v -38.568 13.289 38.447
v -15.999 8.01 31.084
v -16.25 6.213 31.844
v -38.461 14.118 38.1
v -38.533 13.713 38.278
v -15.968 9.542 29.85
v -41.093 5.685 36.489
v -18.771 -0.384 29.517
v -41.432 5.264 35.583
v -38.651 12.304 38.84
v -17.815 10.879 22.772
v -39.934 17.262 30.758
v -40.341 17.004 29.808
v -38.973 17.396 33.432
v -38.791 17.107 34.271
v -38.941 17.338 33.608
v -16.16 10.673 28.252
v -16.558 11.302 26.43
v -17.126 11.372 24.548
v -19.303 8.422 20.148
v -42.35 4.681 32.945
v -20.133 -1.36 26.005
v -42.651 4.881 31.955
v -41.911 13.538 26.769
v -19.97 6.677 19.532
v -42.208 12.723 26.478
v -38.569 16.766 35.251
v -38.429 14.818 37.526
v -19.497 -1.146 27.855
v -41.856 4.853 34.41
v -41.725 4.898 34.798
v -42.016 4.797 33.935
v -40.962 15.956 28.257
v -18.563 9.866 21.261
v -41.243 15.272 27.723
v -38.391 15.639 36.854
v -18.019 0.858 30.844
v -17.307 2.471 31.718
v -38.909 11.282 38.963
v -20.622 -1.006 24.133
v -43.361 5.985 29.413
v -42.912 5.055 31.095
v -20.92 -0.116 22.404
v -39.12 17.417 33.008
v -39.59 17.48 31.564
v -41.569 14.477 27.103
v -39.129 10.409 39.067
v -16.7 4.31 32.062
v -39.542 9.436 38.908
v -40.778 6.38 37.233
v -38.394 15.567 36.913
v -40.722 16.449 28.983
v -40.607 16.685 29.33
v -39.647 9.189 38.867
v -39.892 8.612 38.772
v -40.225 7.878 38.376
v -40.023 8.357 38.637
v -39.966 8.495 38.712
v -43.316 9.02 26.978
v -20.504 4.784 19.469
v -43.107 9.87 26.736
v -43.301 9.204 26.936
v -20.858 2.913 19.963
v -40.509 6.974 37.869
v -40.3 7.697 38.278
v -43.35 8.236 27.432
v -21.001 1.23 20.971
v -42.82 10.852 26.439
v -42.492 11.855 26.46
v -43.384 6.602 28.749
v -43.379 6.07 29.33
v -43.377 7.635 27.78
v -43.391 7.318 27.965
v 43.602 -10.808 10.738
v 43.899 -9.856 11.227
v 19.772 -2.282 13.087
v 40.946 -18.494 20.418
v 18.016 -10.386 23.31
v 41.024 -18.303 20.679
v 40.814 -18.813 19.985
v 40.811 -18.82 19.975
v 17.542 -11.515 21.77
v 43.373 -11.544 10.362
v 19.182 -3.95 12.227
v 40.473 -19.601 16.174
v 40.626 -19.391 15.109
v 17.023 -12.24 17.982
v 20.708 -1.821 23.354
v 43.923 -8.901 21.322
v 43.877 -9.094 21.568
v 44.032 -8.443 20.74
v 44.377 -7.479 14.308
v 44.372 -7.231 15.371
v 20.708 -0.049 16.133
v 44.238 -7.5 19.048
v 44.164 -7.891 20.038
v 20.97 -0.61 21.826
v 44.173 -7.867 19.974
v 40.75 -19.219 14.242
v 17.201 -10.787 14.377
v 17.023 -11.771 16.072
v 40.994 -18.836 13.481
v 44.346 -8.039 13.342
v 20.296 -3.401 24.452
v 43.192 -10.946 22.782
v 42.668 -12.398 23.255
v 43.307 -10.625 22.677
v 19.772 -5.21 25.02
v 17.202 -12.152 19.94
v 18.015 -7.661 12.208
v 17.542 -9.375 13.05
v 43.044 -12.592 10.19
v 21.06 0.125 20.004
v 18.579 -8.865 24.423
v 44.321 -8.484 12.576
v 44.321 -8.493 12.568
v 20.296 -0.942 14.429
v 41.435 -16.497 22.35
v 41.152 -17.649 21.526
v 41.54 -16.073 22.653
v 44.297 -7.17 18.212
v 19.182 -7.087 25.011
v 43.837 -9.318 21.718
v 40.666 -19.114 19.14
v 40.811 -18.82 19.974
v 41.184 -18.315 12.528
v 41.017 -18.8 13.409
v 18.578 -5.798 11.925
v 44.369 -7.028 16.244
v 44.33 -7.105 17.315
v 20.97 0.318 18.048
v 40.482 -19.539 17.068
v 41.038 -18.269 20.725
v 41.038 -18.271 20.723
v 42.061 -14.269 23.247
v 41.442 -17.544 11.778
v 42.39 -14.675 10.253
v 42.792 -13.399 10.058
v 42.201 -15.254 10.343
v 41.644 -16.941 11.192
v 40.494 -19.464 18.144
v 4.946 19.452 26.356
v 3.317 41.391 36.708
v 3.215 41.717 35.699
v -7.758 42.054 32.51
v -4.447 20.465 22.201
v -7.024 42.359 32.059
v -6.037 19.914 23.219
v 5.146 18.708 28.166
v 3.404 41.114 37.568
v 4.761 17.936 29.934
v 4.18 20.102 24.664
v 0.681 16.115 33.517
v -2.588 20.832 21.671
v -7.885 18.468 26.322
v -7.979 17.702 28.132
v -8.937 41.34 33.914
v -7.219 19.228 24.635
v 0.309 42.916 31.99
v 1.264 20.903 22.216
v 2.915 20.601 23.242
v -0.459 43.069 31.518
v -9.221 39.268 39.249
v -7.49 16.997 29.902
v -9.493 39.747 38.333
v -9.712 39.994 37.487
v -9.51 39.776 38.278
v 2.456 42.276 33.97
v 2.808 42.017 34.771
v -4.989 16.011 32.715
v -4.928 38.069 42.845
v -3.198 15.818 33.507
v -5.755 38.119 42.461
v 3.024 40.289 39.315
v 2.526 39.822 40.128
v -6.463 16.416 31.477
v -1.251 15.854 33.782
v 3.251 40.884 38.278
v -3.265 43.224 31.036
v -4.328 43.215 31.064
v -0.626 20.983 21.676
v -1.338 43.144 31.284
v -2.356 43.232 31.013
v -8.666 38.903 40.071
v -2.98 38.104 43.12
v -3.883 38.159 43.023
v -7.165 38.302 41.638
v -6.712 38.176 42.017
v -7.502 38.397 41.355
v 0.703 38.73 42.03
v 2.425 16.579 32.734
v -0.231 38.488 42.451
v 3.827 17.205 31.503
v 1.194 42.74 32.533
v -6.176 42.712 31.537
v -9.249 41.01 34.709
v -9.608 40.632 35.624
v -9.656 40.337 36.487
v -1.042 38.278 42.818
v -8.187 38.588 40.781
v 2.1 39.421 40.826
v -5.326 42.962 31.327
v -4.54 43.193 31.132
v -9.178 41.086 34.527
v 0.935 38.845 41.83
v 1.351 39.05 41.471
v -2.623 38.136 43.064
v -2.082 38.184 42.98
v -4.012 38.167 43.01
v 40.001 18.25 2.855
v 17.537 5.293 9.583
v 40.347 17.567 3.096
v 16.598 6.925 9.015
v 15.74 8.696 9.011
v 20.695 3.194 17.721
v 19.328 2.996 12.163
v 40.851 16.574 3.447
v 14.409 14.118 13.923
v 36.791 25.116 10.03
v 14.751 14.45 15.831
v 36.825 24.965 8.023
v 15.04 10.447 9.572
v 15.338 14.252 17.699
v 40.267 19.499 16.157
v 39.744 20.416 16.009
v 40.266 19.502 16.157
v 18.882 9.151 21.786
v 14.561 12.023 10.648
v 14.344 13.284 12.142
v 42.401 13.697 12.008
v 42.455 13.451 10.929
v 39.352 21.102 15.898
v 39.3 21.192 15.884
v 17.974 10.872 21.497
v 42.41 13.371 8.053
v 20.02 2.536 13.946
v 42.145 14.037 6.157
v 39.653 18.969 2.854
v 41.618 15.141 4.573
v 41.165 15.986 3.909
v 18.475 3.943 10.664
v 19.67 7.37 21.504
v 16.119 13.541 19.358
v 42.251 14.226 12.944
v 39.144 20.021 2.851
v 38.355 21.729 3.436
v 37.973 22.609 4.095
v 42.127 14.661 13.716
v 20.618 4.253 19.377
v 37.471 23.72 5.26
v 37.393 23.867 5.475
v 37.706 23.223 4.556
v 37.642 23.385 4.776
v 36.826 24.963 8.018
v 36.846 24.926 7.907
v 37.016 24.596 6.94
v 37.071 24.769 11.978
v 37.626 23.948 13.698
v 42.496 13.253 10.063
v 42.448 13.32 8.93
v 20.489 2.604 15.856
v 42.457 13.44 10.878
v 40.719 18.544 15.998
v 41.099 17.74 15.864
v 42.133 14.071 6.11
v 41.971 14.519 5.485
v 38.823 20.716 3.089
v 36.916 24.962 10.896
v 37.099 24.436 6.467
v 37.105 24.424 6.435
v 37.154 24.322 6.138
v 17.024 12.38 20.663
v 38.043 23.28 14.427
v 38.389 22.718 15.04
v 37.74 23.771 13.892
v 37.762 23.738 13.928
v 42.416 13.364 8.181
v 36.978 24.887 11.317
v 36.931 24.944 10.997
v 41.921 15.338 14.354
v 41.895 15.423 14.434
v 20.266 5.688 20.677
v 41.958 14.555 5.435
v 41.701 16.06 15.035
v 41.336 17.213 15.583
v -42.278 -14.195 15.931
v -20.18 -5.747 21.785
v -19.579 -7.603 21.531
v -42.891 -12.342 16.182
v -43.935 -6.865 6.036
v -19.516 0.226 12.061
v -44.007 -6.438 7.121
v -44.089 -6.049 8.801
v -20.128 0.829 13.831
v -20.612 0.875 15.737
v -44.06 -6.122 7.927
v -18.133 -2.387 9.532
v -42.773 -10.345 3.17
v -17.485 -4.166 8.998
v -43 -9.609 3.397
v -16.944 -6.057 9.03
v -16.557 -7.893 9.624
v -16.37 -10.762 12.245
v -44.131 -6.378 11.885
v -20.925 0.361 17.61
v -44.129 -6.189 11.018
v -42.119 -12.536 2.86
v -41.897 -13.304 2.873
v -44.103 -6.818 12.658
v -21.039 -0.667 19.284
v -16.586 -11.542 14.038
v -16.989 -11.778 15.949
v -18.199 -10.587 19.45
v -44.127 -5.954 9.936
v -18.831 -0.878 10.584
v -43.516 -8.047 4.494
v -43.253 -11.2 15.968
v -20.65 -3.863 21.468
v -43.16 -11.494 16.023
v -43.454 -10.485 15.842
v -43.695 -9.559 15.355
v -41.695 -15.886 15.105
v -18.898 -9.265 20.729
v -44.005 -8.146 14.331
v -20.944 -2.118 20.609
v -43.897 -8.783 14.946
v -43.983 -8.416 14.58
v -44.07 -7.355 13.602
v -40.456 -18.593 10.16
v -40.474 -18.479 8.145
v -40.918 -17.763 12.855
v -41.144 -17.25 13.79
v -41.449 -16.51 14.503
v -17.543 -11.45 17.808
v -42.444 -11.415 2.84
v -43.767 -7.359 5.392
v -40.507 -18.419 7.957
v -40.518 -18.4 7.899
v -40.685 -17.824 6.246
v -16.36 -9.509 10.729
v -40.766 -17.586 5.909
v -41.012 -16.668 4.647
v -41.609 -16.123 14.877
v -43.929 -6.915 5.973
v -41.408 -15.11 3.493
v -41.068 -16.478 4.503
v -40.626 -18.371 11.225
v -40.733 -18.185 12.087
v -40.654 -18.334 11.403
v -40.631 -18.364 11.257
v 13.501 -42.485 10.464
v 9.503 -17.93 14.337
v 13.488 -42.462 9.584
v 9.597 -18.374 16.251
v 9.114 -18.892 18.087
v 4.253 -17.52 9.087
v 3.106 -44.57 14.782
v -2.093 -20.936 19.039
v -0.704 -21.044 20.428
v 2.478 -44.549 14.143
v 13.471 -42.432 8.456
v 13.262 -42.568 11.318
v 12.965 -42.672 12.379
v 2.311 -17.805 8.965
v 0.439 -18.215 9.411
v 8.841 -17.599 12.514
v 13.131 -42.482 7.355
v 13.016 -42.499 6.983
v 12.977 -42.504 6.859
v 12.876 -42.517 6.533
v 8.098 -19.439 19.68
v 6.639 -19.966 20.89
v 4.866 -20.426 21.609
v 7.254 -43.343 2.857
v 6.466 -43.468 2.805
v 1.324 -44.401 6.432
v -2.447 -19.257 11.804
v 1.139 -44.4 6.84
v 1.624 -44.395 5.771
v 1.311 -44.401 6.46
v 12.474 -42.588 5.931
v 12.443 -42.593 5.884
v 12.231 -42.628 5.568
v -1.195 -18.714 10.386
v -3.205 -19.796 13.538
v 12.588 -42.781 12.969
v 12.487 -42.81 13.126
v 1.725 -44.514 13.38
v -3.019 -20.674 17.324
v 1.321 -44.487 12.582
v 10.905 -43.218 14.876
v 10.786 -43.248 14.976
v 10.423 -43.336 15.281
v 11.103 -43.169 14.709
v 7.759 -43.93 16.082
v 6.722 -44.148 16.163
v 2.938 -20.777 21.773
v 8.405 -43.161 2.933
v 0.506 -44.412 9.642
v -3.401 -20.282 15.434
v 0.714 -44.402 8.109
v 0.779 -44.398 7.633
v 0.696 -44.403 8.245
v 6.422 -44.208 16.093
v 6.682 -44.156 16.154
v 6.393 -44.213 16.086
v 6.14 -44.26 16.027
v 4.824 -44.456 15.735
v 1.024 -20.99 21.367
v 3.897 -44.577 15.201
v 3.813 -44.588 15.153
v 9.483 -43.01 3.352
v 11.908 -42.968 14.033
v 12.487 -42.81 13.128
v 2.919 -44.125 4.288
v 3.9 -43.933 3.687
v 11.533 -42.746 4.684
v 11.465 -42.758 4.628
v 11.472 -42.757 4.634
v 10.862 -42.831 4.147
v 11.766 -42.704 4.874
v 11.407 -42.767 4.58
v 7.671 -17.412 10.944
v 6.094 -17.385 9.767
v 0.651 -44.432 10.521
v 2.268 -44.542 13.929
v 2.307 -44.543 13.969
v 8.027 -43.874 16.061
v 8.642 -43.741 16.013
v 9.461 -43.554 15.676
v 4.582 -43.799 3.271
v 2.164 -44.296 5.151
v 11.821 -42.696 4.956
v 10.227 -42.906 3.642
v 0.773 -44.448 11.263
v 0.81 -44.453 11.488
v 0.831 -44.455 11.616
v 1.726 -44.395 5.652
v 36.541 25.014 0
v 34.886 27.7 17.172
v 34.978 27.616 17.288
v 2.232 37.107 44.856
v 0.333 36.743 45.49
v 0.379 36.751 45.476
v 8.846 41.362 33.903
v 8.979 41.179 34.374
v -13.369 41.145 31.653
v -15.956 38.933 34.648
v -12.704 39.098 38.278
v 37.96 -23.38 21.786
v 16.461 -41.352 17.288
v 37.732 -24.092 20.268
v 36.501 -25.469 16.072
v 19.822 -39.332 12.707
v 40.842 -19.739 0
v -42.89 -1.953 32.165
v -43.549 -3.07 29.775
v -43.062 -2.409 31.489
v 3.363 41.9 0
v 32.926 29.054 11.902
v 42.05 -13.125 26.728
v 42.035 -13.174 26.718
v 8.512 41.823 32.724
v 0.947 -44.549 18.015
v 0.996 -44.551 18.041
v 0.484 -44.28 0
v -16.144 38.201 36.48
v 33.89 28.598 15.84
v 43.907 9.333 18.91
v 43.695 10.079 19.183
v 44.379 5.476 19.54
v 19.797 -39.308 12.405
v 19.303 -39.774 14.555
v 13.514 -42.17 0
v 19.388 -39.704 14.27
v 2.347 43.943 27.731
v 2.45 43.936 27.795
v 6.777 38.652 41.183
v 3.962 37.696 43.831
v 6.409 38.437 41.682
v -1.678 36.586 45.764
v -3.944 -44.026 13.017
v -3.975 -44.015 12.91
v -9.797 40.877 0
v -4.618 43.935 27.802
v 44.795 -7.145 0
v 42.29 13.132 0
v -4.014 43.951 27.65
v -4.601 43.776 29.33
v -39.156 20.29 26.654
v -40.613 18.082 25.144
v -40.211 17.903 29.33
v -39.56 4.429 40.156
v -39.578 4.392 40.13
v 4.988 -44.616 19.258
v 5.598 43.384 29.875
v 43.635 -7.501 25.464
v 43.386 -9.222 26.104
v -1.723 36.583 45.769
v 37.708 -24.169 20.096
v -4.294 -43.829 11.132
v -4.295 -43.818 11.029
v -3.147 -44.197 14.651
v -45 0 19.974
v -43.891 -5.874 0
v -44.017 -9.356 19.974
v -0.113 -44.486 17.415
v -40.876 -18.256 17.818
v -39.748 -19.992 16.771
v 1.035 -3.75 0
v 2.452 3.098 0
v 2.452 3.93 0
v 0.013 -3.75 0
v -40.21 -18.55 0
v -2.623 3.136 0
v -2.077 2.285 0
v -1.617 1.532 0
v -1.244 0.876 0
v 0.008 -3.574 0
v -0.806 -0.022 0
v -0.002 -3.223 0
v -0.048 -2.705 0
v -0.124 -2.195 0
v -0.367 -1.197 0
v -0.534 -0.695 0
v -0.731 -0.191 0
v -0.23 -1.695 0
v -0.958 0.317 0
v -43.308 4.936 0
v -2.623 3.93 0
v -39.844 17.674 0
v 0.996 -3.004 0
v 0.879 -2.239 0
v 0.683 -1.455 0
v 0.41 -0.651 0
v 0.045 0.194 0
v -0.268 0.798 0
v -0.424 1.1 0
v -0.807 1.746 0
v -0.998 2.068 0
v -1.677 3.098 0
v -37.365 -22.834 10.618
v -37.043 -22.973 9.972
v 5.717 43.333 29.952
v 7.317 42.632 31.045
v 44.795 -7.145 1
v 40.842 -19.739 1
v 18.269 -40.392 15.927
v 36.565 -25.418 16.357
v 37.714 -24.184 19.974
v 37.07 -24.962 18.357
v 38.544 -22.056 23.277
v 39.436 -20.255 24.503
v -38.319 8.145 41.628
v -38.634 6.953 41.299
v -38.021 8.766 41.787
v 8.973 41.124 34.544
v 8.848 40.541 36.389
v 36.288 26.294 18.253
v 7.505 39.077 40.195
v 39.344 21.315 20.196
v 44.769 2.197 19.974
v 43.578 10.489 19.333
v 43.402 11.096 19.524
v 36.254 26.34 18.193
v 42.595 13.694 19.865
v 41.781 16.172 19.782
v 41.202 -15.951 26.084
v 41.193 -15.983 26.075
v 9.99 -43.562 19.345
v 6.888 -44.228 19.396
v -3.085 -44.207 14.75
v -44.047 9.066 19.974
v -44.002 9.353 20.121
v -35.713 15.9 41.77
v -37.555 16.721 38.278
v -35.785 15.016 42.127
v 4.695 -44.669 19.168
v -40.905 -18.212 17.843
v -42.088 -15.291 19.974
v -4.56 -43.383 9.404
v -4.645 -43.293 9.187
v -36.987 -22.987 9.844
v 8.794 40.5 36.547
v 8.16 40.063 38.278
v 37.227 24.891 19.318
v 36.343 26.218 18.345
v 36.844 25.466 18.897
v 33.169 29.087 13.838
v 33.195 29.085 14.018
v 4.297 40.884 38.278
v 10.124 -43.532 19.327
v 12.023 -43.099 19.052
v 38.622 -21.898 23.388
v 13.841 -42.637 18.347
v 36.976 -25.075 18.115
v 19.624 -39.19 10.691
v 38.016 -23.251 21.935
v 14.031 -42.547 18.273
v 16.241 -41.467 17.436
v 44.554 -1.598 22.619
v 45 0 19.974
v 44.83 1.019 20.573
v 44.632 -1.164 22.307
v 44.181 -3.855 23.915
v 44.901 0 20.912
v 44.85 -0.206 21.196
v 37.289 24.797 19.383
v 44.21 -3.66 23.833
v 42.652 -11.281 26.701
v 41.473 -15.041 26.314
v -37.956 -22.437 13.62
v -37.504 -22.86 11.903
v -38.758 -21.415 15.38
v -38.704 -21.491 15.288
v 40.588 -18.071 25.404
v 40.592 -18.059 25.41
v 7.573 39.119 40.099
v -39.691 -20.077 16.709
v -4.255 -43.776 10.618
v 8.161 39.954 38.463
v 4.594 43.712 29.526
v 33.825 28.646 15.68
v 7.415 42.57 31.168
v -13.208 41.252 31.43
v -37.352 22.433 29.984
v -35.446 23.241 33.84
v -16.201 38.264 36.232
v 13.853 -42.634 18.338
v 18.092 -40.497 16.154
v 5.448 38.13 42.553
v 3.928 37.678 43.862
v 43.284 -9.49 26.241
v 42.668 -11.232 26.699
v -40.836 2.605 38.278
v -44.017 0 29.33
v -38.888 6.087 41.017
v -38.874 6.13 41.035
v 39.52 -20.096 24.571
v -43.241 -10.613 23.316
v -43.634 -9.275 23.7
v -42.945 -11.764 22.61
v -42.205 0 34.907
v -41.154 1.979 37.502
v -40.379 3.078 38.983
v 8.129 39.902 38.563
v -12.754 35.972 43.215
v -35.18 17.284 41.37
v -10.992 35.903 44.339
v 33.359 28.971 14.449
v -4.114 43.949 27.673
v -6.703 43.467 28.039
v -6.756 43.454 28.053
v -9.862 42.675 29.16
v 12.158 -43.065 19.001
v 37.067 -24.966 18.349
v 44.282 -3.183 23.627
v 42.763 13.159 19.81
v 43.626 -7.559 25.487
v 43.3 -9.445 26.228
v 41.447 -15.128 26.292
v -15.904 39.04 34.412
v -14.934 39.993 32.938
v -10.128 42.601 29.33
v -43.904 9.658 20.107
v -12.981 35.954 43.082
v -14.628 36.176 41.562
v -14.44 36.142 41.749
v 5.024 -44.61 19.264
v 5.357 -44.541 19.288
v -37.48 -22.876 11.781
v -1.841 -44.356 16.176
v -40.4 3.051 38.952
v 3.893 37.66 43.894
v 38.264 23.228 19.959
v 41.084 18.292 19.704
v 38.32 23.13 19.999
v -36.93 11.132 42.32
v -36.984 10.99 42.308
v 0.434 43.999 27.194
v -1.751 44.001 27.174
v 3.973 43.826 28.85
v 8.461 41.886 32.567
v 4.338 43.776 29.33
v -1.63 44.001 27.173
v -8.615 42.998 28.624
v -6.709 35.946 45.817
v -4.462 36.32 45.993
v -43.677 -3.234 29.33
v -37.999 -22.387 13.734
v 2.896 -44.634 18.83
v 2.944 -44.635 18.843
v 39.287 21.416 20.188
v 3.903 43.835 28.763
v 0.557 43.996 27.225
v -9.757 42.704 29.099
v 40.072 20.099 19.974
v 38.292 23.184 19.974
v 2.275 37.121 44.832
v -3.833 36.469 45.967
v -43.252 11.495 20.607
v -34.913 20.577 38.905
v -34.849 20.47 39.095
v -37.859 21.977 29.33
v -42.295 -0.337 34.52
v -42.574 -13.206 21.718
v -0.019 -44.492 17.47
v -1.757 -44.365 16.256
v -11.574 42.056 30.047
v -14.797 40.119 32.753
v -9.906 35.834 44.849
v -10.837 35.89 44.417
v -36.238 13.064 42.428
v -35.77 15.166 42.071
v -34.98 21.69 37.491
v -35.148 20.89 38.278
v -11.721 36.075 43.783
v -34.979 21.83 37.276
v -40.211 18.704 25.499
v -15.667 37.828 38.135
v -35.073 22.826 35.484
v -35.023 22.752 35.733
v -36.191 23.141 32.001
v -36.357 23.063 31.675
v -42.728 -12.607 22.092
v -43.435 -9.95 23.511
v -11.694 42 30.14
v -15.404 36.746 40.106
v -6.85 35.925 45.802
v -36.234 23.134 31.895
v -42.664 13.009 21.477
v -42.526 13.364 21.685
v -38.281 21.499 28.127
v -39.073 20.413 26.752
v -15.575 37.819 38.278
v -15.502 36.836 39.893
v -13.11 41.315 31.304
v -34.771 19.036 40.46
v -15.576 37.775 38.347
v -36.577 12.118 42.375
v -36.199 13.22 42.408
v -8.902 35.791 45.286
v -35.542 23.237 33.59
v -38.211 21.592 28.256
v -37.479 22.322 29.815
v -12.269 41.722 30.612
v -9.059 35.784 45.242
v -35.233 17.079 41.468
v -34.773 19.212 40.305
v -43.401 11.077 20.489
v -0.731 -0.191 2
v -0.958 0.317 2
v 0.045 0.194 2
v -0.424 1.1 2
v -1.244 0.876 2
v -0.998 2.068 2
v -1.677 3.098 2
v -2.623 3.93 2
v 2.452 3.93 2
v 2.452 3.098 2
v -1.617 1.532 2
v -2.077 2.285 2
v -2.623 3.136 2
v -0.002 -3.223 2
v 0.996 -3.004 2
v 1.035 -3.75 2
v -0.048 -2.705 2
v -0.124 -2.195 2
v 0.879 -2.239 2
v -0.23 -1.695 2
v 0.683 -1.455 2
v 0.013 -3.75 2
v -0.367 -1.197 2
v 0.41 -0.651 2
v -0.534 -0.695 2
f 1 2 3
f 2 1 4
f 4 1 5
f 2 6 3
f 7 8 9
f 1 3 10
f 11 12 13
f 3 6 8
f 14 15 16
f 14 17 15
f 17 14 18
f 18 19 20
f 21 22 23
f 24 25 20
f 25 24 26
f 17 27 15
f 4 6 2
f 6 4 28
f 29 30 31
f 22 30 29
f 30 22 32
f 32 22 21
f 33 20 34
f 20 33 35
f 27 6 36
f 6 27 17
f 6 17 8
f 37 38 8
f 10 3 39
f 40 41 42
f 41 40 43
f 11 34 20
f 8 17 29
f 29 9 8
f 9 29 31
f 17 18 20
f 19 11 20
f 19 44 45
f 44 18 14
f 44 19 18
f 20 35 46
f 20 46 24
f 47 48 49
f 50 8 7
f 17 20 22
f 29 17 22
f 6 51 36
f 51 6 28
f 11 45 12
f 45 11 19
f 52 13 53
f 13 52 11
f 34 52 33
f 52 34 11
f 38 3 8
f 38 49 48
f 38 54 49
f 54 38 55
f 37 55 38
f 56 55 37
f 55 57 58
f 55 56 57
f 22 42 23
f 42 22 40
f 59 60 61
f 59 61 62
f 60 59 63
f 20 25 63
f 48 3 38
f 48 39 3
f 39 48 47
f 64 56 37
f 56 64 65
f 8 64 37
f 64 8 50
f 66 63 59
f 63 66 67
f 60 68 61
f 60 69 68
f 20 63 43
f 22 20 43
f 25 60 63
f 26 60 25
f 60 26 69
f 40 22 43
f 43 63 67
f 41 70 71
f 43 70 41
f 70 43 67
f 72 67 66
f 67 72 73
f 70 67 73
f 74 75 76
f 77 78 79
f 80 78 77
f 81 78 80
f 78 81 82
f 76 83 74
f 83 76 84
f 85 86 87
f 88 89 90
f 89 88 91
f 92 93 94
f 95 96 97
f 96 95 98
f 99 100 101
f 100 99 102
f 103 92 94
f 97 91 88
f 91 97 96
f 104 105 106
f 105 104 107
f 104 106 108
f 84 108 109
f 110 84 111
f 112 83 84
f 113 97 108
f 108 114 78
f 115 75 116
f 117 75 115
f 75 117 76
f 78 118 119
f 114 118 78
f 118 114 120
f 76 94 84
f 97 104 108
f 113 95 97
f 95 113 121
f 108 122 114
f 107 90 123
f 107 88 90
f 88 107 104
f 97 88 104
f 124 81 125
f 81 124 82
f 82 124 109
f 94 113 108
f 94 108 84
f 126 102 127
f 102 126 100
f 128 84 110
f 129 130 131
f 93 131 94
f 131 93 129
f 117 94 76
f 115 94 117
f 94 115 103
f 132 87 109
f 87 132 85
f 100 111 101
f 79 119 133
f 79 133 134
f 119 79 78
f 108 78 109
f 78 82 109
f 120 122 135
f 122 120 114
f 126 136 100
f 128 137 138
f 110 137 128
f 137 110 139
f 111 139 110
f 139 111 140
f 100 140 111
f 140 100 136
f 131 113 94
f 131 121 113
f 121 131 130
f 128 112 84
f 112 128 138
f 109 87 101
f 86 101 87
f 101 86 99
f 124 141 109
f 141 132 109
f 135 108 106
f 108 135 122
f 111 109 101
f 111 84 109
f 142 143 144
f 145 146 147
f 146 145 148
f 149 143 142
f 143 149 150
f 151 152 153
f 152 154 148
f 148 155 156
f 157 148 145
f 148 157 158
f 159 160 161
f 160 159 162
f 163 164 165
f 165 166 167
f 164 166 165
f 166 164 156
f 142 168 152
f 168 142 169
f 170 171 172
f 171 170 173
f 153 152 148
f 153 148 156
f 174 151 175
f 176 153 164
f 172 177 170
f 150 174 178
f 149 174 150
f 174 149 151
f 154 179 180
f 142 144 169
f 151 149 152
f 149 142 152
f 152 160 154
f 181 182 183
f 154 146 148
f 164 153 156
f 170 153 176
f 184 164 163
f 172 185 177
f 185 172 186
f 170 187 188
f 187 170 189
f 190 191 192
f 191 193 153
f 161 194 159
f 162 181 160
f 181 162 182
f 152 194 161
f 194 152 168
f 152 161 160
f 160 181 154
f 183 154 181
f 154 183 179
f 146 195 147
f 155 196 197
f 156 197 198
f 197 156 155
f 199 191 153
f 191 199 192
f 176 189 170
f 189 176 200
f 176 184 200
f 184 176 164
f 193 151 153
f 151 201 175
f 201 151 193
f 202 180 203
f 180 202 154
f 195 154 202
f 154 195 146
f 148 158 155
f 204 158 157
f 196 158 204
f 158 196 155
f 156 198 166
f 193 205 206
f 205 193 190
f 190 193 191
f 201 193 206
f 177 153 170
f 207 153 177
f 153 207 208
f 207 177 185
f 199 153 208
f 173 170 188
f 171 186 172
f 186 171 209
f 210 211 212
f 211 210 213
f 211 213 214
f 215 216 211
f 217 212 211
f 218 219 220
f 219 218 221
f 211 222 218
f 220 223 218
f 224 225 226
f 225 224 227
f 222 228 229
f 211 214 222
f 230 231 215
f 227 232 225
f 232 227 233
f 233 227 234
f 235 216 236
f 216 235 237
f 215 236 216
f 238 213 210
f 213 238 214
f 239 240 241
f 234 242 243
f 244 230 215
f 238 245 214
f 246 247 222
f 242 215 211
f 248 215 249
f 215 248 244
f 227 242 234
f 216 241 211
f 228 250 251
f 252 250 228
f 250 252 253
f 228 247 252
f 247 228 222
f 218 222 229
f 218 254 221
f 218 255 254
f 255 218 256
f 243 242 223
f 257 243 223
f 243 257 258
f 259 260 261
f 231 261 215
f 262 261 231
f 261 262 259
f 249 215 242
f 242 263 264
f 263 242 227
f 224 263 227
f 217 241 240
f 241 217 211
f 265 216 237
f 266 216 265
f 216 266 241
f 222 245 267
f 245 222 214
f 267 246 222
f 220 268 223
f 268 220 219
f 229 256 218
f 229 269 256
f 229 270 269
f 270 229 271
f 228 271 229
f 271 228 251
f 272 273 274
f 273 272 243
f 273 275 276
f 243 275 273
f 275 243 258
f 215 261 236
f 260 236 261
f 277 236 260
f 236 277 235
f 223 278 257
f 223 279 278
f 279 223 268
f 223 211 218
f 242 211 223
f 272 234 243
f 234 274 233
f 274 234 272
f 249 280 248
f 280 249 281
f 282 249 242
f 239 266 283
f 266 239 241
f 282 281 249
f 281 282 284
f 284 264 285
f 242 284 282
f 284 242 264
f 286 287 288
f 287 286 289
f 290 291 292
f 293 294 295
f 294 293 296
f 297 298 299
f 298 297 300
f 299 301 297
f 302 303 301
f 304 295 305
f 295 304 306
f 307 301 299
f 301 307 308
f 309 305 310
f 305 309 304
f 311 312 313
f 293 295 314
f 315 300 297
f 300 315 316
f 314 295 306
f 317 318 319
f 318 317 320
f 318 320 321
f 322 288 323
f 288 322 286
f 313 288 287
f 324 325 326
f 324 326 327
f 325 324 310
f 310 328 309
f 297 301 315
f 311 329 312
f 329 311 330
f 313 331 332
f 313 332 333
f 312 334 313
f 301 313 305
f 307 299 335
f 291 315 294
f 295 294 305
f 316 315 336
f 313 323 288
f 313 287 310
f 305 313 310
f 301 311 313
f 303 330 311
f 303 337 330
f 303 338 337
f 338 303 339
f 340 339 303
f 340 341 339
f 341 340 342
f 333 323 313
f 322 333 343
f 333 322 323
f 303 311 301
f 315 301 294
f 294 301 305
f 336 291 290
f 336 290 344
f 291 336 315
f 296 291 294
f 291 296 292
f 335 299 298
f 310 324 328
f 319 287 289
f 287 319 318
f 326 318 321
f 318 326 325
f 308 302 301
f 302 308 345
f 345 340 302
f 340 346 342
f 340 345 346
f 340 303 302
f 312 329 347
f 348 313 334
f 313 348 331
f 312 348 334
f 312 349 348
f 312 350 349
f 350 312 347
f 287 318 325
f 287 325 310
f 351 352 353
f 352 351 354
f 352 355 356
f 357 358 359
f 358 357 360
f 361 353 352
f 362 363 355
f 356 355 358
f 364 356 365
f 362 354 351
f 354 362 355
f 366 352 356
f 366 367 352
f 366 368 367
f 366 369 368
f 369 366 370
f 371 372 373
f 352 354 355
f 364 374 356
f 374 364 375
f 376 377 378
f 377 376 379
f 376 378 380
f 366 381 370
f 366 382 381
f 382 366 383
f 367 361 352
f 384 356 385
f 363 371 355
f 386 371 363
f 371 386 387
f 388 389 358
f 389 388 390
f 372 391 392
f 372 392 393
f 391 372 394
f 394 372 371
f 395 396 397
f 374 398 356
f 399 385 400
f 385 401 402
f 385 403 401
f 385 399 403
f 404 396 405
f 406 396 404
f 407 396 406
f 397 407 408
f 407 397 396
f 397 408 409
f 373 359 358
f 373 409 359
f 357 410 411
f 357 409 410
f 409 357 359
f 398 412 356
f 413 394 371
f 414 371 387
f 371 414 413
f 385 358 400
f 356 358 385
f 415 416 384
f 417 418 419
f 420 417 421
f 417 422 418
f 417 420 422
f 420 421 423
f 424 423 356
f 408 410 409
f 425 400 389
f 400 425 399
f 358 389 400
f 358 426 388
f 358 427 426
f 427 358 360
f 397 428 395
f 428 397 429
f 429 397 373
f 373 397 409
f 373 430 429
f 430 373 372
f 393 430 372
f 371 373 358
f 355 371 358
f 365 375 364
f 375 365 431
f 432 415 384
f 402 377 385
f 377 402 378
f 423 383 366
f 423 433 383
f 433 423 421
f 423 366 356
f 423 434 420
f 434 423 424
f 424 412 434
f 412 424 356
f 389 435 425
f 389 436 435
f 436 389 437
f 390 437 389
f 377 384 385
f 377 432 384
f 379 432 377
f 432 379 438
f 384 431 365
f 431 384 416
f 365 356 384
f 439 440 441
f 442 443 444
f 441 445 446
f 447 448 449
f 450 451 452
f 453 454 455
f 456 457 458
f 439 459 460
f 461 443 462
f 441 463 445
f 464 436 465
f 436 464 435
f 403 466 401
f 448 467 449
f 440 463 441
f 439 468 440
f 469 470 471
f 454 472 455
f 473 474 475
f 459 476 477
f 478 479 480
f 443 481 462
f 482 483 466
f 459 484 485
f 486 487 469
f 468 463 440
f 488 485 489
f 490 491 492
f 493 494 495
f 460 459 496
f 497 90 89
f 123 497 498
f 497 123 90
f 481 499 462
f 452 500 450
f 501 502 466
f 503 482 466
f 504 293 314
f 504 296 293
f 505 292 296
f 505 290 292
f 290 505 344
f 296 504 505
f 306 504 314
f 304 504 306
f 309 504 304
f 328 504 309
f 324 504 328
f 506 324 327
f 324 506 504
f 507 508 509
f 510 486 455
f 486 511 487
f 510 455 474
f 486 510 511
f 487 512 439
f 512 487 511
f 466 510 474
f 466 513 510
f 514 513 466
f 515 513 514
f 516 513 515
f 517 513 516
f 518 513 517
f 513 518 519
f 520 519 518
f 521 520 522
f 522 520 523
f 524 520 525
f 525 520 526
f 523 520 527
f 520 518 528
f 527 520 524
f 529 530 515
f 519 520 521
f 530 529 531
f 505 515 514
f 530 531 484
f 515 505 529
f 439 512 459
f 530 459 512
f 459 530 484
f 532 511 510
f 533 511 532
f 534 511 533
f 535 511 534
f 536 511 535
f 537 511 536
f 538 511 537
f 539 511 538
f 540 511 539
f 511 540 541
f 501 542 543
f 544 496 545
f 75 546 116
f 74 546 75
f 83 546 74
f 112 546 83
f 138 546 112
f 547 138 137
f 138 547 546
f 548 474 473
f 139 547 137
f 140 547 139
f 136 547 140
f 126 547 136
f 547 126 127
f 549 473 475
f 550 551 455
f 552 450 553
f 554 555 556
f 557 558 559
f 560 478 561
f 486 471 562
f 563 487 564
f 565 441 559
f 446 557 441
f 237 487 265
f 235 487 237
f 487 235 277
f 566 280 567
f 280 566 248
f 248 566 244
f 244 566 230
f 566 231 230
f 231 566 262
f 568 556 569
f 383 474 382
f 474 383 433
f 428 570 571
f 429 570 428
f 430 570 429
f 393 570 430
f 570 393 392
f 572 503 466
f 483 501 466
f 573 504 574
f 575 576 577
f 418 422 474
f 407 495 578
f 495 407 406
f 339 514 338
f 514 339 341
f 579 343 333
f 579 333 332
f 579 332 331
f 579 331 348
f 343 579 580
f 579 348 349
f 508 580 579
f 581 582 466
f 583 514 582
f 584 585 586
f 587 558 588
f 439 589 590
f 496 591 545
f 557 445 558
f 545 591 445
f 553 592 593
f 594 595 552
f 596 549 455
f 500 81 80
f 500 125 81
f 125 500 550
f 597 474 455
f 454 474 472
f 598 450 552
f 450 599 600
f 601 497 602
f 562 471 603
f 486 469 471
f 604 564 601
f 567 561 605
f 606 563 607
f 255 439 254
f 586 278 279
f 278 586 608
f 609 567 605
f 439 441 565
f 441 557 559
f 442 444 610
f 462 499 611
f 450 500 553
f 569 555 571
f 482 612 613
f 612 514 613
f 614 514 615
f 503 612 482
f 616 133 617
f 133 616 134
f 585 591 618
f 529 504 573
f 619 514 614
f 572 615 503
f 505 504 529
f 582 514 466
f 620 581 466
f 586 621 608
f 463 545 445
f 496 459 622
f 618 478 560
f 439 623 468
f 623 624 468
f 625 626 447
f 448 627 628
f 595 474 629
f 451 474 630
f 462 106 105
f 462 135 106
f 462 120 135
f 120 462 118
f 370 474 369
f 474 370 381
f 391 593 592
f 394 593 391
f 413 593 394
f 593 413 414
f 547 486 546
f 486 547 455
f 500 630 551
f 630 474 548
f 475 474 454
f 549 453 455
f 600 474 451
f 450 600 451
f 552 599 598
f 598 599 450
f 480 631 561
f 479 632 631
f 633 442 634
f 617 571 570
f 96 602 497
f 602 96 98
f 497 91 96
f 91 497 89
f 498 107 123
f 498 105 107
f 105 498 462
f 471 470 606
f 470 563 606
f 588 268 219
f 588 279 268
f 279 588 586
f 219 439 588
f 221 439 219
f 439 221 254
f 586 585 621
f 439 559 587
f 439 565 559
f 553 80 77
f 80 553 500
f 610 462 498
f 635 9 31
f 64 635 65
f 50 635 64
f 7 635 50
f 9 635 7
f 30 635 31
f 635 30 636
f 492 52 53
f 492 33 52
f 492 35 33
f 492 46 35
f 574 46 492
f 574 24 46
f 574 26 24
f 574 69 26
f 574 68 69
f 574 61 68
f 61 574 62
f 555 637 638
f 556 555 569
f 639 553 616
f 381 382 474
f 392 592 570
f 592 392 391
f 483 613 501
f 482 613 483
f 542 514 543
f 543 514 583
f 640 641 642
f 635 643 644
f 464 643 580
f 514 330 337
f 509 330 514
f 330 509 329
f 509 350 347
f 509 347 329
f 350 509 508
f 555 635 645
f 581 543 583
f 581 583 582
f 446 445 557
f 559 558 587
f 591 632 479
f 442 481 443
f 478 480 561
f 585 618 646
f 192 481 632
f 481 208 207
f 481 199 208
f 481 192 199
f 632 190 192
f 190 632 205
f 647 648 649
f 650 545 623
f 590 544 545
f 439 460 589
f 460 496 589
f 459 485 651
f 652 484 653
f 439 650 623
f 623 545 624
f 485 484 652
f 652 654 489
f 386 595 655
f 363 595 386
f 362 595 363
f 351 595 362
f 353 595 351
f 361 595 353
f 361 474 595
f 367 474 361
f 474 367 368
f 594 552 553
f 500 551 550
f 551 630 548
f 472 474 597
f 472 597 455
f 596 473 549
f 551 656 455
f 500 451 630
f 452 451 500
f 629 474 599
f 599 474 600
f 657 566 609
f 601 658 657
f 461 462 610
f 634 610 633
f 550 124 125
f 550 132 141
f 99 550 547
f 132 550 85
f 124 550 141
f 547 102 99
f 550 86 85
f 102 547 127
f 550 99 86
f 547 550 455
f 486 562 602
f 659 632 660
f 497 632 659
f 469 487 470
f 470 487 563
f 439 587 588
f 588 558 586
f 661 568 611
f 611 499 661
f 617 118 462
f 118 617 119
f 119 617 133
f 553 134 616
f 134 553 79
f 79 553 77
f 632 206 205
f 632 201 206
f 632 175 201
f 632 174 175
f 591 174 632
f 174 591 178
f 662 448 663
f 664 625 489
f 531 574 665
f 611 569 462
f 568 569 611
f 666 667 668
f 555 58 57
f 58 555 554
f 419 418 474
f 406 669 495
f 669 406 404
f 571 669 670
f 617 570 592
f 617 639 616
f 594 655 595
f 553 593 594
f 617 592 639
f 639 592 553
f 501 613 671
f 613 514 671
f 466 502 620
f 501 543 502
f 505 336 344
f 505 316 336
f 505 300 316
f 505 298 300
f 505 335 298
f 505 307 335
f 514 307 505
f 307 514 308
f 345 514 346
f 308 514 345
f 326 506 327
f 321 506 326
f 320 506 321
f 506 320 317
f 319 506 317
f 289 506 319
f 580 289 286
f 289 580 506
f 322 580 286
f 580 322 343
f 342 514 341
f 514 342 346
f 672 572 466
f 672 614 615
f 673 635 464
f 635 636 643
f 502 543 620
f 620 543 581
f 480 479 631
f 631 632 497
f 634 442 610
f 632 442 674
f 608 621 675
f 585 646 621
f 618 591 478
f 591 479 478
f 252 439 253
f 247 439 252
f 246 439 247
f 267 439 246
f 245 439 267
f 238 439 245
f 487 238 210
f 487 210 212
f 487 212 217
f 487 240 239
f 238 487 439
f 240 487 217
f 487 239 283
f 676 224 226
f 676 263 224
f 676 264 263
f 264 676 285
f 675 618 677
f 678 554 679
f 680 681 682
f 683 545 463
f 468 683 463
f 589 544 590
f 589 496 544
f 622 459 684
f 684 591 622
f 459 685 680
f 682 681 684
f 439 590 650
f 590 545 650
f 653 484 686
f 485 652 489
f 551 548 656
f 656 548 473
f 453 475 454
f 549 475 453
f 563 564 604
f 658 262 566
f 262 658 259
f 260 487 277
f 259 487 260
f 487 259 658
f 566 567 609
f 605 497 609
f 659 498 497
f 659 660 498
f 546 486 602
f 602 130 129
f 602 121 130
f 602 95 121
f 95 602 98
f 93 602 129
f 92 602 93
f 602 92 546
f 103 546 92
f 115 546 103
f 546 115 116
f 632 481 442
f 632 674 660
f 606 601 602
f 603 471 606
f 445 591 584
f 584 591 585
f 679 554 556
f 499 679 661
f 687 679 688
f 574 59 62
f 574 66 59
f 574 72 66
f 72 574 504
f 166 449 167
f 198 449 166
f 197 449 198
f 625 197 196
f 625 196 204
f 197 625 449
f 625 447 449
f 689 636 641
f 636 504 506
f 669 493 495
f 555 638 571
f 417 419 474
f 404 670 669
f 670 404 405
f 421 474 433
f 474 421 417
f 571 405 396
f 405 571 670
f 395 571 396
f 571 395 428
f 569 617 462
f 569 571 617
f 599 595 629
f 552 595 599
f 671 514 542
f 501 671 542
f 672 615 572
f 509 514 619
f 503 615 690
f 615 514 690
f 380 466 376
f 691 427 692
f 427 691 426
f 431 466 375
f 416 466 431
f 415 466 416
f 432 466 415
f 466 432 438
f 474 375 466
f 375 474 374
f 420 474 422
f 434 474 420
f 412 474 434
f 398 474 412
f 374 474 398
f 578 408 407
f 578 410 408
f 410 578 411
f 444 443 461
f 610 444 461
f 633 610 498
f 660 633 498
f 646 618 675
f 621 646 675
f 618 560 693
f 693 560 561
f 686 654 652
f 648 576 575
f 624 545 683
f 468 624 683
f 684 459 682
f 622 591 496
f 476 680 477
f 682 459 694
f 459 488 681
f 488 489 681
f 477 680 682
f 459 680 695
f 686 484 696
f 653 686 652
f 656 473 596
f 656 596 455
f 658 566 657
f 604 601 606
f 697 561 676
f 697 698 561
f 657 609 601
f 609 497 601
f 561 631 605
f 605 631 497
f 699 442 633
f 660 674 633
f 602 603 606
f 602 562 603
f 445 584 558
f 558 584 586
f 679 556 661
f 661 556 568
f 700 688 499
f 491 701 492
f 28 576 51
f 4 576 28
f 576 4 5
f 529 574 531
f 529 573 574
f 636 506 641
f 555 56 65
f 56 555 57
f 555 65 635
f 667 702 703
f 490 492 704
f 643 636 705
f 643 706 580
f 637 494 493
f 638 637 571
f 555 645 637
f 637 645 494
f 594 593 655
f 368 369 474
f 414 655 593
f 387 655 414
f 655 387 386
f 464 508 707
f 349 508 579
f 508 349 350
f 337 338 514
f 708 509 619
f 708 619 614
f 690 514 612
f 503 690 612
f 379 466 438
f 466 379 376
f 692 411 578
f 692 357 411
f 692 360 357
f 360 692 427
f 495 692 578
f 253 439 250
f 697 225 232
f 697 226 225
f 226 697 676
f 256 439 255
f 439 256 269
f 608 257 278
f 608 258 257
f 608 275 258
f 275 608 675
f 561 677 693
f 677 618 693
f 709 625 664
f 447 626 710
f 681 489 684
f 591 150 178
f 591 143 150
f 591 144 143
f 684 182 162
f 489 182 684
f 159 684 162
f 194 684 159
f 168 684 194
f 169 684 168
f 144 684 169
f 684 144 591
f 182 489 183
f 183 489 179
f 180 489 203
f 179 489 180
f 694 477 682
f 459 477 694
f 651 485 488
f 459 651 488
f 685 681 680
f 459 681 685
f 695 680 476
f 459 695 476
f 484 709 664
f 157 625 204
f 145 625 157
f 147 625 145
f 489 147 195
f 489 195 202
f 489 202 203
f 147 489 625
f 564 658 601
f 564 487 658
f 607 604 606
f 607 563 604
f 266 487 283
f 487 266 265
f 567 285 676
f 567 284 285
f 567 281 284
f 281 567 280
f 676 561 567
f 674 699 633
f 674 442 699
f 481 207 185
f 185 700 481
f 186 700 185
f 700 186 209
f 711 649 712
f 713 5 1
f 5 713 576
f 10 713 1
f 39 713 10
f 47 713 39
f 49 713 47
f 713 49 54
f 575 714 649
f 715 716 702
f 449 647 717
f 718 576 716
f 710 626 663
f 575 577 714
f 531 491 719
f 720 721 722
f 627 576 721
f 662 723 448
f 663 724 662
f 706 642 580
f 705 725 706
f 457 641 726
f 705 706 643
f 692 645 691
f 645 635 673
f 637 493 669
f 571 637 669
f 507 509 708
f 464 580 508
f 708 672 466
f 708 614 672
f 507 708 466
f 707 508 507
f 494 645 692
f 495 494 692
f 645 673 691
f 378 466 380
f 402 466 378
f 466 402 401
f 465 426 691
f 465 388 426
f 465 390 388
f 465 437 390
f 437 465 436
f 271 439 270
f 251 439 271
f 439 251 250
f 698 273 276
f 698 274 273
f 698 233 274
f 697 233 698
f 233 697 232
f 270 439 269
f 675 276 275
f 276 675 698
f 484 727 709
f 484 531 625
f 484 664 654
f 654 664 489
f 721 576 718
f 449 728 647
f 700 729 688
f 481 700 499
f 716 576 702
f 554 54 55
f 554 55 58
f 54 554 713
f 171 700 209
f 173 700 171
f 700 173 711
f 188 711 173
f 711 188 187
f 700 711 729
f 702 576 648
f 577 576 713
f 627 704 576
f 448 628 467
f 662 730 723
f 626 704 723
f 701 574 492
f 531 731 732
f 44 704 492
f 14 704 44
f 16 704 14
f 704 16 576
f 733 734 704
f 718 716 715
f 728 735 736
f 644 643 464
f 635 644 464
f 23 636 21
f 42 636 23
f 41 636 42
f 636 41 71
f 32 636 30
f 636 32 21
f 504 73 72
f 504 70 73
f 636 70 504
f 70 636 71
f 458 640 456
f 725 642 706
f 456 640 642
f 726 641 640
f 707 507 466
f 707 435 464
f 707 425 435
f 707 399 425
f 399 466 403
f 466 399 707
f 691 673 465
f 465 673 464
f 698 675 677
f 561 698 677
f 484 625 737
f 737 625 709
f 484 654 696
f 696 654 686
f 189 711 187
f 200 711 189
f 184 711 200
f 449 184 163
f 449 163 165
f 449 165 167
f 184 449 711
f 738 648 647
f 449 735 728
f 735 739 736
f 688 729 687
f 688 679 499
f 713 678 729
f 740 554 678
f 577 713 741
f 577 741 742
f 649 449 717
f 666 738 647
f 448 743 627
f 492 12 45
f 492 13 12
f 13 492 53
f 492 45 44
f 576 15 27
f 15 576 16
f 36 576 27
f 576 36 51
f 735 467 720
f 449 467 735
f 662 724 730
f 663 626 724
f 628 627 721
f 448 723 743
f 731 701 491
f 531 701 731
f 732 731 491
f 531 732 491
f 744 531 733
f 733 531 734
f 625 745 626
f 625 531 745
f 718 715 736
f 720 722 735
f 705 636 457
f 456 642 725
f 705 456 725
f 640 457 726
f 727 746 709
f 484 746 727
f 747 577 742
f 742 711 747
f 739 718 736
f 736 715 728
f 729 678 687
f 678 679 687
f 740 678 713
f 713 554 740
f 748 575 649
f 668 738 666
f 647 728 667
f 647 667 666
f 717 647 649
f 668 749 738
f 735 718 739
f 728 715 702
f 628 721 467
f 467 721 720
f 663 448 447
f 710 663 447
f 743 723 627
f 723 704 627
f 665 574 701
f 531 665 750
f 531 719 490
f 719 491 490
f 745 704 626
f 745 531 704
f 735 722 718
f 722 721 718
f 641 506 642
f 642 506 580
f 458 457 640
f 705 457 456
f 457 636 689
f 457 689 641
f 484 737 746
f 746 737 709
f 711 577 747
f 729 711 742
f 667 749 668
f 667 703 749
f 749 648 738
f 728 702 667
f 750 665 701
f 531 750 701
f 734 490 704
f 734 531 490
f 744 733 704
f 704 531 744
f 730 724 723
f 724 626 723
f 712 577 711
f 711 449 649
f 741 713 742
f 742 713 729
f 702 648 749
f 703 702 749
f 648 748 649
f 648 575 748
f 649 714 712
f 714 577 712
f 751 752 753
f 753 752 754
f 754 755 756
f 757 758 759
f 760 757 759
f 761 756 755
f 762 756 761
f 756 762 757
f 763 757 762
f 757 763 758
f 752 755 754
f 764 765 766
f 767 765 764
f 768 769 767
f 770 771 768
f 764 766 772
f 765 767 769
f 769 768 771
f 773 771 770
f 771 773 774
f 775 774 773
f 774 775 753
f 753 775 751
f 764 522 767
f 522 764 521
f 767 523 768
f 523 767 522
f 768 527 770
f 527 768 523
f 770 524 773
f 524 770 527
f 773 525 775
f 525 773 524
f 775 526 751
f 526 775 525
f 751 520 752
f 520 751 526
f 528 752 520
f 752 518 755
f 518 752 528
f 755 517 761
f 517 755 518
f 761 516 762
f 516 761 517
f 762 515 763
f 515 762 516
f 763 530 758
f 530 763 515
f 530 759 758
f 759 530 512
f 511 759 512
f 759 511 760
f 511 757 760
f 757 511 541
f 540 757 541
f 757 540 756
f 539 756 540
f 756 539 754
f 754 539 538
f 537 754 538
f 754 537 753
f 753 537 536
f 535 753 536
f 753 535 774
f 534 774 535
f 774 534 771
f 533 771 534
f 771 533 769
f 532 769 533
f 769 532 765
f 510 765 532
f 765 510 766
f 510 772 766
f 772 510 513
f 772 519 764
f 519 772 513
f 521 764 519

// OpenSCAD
difference() {
	difference() {
		difference() {
			hull() {
				union() {
					union() {
						rotate(a = 164.7886357031, v = [0, 0, 1]) {
							translate(v = [0, -6.6000000000, 0]) {
								cube(size = [43.0855412573, 13.2000000000, 1]);
							}
						}
						rotate(a = -17.4284239141, v = [0, 0, 1]) {
							translate(v = [0, -6.6000000000, 0]) {
								cube(size = [44.8787166652, 13.2000000000, 1]);
							}
						}
						rotate(a = 94.4448581405, v = [0, 0, 1]) {
							translate(v = [0, -6.6000000000, 0]) {
								cube(size = [41.5129379243, 13.2000000000, 1]);
							}
						}
						rotate(a = 25.8222615810, v = [0, 0, 1]) {
							translate(v = [0, -6.6000000000, 0]) {
								cube(size = [43.7878239288, 13.2000000000, 1]);
							}
						}
						rotate(a = -163.8058894154, v = [0, 0, 1]) {
							translate(v = [0, -6.6000000000, 0]) {
								cube(size = [43.7878212574, 13.2000000000, 1]);
							}
						}
						rotate(a = -80.8022124970, v = [0, 0, 1]) {
							translate(v = [0, -6.6000000000, 0]) {
								cube(size = [43.7878216848, 13.2000000000, 1]);
							}
						}
					}
					translate(v = [0, 0, 19.9743293532]) {
						intersection() {
							hull() {
								rotate(a = 73.2272146022, v = [-0.2512176951, -0.9239117677, 0.0000011751]) {
									cylinder(h = 45, r = 9.6000000000);
								}
								rotate(a = 94.2075148484, v = [0.2987068259, 0.9515204788, -0.0000012502]) {
									cylinder(h = 45, r = 9.6000000000);
								}
								rotate(a = 67.2957373806, v = [-0.9197347885, -0.0714945390, 0.0000009912]) {
									cylinder(h = 45, r = 9.6000000000);
								}
								rotate(a = 103.3288130025, v = [-0.4238477558, 0.8759022790, -0.0000004521]) {
									cylinder(h = 45, r = 9.6000000000);
								}
								rotate(a = 103.3289752894, v = [0.2713795561, -0.9344536308, 0.0000006631]) {
									cylinder(h = 45, r = 9.6000000000);
								}
								rotate(a = 103.3289493282, v = [0.9605512597, 0.1555375594, -0.0000011161]) {
									cylinder(h = 45, r = 9.6000000000);
								}
							}
							sphere(r = 45);
						}
					}
				}
			}
			translate(v = [0, 0, 19.9743293532]) {
				rotate(a = 73.2272146022, v = [-0.2512176951, -0.9239117677, 0.0000011751]) {
					translate(v = [0, 0, 20]) {
						cylinder(h = 45, r = 6.6000000000);
					}
				}
				rotate(a = 94.2075148484, v = [0.2987068259, 0.9515204788, -0.0000012502]) {
					translate(v = [0, 0, 20]) {
						cylinder(h = 45, r = 6.6000000000);
					}
				}
				rotate(a = 67.2957373806, v = [-0.9197347885, -0.0714945390, 0.0000009912]) {
					translate(v = [0, 0, 20]) {
						cylinder(h = 45, r = 6.6000000000);
					}
				}
				rotate(a = 103.3288130025, v = [-0.4238477558, 0.8759022790, -0.0000004521]) {
					translate(v = [0, 0, 20]) {
						cylinder(h = 45, r = 6.6000000000);
					}
				}
				rotate(a = 103.3289752894, v = [0.2713795561, -0.9344536308, 0.0000006631]) {
					translate(v = [0, 0, 20]) {
						cylinder(h = 45, r = 6.6000000000);
					}
				}
				rotate(a = 103.3289493282, v = [0.9605512597, 0.1555375594, -0.0000011161]) {
					translate(v = [0, 0, 20]) {
						cylinder(h = 45, r = 6.6000000000);
					}
				}
			}
		}
		translate(v = [-100, -100, -100]) {
			cube(size = [200, 200, 100]);
		}
	}
	translate(v = [0, 0, 2]) {
		rotate(a = 180, v = [0, 1, 0]) {
			linear_extrude(height = 3) {
				text(halign = "center", size = 8, text = "7", valign = "center");
			}
		}
	}
}
